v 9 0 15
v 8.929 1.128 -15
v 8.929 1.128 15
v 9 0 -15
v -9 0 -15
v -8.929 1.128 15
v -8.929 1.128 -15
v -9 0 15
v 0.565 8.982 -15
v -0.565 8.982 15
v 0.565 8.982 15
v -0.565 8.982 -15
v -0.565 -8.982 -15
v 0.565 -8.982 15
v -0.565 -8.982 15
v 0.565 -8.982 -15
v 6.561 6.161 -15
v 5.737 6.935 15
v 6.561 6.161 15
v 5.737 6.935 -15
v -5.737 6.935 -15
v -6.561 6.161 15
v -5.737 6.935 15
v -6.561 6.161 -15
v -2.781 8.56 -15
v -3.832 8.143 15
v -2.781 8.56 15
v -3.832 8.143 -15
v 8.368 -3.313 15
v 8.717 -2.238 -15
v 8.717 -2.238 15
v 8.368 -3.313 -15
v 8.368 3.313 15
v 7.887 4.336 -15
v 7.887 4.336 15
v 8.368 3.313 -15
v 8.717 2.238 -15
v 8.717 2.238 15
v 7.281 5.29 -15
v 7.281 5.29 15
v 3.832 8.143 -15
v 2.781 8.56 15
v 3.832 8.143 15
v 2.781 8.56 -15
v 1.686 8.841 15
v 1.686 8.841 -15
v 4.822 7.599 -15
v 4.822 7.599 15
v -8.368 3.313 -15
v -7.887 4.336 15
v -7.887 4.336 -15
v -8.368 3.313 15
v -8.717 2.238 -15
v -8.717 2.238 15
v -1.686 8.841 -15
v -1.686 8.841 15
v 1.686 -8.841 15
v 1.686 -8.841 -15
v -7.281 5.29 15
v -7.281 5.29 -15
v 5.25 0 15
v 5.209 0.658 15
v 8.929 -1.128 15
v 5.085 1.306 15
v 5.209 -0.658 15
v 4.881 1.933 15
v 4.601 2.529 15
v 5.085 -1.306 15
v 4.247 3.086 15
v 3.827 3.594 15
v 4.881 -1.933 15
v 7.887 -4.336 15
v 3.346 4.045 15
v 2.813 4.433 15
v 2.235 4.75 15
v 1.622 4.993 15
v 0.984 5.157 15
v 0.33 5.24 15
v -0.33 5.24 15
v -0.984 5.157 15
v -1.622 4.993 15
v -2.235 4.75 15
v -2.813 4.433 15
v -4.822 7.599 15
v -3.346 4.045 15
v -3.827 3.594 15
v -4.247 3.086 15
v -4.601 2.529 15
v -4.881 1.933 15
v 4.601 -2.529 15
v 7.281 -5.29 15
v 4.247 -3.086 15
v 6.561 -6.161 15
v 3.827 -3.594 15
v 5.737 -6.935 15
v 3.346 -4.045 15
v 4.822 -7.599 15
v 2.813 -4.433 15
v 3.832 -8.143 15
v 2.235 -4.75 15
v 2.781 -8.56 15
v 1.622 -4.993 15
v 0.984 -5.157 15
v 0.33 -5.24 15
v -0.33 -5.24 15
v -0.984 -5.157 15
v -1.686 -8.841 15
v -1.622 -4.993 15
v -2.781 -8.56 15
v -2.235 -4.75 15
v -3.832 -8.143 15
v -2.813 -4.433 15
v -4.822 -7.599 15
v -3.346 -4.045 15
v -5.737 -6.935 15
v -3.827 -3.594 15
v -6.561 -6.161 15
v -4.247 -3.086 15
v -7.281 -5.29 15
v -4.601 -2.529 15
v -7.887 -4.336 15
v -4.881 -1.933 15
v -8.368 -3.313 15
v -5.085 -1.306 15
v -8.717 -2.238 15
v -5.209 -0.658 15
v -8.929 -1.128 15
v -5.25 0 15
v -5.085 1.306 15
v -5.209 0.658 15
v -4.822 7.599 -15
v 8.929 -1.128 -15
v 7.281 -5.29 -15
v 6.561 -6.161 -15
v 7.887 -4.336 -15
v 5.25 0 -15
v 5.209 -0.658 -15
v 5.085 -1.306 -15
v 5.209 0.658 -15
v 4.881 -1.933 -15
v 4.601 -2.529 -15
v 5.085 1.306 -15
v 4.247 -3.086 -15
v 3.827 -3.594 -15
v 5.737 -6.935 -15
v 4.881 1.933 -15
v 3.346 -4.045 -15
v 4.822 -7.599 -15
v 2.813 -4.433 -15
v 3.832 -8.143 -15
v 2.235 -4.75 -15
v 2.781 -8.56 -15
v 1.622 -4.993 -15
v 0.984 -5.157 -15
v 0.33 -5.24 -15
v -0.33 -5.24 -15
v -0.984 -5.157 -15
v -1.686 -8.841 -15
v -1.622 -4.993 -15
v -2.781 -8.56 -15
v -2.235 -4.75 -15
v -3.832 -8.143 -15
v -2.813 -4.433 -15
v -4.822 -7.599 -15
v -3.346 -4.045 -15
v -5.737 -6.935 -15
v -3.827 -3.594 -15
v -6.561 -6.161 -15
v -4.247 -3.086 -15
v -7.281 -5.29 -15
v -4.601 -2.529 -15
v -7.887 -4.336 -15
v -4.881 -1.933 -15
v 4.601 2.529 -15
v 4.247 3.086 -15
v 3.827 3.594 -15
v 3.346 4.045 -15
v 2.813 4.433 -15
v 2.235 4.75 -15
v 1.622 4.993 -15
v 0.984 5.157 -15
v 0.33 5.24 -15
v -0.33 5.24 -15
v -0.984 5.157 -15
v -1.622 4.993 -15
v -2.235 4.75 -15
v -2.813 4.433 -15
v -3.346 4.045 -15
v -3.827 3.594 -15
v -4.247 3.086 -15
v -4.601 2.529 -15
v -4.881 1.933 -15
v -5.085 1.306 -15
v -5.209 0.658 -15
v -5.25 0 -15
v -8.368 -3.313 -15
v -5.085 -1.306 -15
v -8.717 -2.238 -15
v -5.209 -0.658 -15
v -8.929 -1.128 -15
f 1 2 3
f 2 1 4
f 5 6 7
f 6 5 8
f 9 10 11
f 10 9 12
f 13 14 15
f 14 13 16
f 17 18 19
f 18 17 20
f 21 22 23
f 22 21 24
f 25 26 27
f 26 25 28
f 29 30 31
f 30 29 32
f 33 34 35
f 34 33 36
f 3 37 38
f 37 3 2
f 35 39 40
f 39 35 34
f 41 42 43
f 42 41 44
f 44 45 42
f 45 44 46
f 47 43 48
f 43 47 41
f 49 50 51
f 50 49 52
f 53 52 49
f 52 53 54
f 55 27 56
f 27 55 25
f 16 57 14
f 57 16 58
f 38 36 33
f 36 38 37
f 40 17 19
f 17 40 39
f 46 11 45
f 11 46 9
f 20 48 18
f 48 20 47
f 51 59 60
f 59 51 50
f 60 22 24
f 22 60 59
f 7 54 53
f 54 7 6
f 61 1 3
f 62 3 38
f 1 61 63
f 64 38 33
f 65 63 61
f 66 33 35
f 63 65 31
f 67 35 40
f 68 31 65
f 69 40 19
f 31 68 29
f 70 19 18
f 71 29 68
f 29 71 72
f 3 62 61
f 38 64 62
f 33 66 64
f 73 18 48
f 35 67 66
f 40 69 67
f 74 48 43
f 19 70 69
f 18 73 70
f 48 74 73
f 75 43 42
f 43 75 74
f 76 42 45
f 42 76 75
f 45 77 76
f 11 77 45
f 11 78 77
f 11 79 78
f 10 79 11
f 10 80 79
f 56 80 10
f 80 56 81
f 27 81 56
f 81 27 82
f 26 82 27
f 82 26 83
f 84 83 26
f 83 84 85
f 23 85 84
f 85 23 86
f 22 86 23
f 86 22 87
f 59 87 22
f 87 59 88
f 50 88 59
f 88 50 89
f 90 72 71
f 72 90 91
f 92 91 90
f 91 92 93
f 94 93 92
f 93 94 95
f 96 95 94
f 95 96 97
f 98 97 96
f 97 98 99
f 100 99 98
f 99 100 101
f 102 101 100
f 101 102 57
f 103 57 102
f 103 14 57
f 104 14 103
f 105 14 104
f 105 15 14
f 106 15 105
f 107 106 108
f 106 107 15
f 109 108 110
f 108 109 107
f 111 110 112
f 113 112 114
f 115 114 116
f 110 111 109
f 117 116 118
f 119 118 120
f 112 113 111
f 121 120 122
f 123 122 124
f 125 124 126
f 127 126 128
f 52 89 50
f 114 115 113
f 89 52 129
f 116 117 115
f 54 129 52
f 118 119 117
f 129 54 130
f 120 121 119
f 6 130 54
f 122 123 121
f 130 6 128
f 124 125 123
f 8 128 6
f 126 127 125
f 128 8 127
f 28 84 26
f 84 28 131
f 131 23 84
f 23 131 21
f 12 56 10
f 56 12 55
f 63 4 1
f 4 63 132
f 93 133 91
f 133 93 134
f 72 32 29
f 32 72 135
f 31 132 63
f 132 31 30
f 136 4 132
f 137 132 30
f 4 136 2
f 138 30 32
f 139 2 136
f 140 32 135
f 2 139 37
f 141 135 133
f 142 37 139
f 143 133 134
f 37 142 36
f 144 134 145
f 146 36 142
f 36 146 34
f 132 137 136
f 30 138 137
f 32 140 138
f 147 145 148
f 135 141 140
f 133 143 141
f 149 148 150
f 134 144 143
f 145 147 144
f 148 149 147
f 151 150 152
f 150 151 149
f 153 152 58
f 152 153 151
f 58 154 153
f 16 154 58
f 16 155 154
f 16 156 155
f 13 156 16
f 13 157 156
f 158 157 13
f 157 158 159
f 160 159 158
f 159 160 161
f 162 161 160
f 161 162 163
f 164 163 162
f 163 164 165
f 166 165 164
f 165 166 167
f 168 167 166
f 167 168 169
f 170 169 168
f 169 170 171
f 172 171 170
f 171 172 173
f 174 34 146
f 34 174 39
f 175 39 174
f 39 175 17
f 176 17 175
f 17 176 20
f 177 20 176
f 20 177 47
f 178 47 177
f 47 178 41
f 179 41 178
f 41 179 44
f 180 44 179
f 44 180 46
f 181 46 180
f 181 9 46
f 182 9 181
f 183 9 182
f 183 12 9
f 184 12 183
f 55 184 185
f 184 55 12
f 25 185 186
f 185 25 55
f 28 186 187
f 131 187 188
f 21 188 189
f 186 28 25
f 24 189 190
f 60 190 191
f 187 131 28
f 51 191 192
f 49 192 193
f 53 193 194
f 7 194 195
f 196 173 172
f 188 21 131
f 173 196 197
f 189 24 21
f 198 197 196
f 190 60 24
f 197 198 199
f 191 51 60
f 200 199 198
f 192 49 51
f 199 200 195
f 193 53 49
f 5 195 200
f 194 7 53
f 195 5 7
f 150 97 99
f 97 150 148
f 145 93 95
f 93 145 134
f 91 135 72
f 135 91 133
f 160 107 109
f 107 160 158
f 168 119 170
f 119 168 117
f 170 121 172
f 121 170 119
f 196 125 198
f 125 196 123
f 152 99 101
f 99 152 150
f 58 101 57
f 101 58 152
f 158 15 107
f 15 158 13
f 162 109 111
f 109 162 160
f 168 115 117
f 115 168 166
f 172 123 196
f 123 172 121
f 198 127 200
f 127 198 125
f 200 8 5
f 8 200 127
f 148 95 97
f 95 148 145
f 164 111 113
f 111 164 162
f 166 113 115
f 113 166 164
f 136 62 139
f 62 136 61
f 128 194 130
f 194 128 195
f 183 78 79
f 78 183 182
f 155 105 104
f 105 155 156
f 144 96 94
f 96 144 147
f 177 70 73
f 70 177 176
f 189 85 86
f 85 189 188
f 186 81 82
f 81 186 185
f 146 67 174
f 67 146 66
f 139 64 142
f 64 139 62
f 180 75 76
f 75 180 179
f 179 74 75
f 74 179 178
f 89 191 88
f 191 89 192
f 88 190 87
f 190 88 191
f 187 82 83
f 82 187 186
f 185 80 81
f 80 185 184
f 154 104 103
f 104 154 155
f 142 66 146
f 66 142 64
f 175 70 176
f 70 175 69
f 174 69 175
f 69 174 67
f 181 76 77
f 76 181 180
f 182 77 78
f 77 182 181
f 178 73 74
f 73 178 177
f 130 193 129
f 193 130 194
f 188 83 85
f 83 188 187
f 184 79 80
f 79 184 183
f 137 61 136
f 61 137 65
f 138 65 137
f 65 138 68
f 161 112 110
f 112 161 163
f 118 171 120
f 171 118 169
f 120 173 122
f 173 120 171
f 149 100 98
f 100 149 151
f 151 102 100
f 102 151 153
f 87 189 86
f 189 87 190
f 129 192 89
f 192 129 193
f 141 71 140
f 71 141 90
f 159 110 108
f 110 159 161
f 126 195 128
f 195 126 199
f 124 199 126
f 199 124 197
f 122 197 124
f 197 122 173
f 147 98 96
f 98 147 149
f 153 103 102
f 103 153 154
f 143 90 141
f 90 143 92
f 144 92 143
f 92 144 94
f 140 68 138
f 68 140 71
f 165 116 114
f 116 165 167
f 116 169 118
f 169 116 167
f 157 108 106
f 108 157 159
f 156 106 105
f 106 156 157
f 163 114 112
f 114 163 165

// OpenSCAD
$fn = 50;


difference() {
	union() {
		translate(v = [0, 0, -15.0000000000]) {
			cylinder(h = 30, r = 9.0000000000);
		}
	}
	union() {
		translate(v = [0, 0, -100.0000000000]) {
			cylinder(h = 200, r = 5.2500000000);
		}
	}
}
